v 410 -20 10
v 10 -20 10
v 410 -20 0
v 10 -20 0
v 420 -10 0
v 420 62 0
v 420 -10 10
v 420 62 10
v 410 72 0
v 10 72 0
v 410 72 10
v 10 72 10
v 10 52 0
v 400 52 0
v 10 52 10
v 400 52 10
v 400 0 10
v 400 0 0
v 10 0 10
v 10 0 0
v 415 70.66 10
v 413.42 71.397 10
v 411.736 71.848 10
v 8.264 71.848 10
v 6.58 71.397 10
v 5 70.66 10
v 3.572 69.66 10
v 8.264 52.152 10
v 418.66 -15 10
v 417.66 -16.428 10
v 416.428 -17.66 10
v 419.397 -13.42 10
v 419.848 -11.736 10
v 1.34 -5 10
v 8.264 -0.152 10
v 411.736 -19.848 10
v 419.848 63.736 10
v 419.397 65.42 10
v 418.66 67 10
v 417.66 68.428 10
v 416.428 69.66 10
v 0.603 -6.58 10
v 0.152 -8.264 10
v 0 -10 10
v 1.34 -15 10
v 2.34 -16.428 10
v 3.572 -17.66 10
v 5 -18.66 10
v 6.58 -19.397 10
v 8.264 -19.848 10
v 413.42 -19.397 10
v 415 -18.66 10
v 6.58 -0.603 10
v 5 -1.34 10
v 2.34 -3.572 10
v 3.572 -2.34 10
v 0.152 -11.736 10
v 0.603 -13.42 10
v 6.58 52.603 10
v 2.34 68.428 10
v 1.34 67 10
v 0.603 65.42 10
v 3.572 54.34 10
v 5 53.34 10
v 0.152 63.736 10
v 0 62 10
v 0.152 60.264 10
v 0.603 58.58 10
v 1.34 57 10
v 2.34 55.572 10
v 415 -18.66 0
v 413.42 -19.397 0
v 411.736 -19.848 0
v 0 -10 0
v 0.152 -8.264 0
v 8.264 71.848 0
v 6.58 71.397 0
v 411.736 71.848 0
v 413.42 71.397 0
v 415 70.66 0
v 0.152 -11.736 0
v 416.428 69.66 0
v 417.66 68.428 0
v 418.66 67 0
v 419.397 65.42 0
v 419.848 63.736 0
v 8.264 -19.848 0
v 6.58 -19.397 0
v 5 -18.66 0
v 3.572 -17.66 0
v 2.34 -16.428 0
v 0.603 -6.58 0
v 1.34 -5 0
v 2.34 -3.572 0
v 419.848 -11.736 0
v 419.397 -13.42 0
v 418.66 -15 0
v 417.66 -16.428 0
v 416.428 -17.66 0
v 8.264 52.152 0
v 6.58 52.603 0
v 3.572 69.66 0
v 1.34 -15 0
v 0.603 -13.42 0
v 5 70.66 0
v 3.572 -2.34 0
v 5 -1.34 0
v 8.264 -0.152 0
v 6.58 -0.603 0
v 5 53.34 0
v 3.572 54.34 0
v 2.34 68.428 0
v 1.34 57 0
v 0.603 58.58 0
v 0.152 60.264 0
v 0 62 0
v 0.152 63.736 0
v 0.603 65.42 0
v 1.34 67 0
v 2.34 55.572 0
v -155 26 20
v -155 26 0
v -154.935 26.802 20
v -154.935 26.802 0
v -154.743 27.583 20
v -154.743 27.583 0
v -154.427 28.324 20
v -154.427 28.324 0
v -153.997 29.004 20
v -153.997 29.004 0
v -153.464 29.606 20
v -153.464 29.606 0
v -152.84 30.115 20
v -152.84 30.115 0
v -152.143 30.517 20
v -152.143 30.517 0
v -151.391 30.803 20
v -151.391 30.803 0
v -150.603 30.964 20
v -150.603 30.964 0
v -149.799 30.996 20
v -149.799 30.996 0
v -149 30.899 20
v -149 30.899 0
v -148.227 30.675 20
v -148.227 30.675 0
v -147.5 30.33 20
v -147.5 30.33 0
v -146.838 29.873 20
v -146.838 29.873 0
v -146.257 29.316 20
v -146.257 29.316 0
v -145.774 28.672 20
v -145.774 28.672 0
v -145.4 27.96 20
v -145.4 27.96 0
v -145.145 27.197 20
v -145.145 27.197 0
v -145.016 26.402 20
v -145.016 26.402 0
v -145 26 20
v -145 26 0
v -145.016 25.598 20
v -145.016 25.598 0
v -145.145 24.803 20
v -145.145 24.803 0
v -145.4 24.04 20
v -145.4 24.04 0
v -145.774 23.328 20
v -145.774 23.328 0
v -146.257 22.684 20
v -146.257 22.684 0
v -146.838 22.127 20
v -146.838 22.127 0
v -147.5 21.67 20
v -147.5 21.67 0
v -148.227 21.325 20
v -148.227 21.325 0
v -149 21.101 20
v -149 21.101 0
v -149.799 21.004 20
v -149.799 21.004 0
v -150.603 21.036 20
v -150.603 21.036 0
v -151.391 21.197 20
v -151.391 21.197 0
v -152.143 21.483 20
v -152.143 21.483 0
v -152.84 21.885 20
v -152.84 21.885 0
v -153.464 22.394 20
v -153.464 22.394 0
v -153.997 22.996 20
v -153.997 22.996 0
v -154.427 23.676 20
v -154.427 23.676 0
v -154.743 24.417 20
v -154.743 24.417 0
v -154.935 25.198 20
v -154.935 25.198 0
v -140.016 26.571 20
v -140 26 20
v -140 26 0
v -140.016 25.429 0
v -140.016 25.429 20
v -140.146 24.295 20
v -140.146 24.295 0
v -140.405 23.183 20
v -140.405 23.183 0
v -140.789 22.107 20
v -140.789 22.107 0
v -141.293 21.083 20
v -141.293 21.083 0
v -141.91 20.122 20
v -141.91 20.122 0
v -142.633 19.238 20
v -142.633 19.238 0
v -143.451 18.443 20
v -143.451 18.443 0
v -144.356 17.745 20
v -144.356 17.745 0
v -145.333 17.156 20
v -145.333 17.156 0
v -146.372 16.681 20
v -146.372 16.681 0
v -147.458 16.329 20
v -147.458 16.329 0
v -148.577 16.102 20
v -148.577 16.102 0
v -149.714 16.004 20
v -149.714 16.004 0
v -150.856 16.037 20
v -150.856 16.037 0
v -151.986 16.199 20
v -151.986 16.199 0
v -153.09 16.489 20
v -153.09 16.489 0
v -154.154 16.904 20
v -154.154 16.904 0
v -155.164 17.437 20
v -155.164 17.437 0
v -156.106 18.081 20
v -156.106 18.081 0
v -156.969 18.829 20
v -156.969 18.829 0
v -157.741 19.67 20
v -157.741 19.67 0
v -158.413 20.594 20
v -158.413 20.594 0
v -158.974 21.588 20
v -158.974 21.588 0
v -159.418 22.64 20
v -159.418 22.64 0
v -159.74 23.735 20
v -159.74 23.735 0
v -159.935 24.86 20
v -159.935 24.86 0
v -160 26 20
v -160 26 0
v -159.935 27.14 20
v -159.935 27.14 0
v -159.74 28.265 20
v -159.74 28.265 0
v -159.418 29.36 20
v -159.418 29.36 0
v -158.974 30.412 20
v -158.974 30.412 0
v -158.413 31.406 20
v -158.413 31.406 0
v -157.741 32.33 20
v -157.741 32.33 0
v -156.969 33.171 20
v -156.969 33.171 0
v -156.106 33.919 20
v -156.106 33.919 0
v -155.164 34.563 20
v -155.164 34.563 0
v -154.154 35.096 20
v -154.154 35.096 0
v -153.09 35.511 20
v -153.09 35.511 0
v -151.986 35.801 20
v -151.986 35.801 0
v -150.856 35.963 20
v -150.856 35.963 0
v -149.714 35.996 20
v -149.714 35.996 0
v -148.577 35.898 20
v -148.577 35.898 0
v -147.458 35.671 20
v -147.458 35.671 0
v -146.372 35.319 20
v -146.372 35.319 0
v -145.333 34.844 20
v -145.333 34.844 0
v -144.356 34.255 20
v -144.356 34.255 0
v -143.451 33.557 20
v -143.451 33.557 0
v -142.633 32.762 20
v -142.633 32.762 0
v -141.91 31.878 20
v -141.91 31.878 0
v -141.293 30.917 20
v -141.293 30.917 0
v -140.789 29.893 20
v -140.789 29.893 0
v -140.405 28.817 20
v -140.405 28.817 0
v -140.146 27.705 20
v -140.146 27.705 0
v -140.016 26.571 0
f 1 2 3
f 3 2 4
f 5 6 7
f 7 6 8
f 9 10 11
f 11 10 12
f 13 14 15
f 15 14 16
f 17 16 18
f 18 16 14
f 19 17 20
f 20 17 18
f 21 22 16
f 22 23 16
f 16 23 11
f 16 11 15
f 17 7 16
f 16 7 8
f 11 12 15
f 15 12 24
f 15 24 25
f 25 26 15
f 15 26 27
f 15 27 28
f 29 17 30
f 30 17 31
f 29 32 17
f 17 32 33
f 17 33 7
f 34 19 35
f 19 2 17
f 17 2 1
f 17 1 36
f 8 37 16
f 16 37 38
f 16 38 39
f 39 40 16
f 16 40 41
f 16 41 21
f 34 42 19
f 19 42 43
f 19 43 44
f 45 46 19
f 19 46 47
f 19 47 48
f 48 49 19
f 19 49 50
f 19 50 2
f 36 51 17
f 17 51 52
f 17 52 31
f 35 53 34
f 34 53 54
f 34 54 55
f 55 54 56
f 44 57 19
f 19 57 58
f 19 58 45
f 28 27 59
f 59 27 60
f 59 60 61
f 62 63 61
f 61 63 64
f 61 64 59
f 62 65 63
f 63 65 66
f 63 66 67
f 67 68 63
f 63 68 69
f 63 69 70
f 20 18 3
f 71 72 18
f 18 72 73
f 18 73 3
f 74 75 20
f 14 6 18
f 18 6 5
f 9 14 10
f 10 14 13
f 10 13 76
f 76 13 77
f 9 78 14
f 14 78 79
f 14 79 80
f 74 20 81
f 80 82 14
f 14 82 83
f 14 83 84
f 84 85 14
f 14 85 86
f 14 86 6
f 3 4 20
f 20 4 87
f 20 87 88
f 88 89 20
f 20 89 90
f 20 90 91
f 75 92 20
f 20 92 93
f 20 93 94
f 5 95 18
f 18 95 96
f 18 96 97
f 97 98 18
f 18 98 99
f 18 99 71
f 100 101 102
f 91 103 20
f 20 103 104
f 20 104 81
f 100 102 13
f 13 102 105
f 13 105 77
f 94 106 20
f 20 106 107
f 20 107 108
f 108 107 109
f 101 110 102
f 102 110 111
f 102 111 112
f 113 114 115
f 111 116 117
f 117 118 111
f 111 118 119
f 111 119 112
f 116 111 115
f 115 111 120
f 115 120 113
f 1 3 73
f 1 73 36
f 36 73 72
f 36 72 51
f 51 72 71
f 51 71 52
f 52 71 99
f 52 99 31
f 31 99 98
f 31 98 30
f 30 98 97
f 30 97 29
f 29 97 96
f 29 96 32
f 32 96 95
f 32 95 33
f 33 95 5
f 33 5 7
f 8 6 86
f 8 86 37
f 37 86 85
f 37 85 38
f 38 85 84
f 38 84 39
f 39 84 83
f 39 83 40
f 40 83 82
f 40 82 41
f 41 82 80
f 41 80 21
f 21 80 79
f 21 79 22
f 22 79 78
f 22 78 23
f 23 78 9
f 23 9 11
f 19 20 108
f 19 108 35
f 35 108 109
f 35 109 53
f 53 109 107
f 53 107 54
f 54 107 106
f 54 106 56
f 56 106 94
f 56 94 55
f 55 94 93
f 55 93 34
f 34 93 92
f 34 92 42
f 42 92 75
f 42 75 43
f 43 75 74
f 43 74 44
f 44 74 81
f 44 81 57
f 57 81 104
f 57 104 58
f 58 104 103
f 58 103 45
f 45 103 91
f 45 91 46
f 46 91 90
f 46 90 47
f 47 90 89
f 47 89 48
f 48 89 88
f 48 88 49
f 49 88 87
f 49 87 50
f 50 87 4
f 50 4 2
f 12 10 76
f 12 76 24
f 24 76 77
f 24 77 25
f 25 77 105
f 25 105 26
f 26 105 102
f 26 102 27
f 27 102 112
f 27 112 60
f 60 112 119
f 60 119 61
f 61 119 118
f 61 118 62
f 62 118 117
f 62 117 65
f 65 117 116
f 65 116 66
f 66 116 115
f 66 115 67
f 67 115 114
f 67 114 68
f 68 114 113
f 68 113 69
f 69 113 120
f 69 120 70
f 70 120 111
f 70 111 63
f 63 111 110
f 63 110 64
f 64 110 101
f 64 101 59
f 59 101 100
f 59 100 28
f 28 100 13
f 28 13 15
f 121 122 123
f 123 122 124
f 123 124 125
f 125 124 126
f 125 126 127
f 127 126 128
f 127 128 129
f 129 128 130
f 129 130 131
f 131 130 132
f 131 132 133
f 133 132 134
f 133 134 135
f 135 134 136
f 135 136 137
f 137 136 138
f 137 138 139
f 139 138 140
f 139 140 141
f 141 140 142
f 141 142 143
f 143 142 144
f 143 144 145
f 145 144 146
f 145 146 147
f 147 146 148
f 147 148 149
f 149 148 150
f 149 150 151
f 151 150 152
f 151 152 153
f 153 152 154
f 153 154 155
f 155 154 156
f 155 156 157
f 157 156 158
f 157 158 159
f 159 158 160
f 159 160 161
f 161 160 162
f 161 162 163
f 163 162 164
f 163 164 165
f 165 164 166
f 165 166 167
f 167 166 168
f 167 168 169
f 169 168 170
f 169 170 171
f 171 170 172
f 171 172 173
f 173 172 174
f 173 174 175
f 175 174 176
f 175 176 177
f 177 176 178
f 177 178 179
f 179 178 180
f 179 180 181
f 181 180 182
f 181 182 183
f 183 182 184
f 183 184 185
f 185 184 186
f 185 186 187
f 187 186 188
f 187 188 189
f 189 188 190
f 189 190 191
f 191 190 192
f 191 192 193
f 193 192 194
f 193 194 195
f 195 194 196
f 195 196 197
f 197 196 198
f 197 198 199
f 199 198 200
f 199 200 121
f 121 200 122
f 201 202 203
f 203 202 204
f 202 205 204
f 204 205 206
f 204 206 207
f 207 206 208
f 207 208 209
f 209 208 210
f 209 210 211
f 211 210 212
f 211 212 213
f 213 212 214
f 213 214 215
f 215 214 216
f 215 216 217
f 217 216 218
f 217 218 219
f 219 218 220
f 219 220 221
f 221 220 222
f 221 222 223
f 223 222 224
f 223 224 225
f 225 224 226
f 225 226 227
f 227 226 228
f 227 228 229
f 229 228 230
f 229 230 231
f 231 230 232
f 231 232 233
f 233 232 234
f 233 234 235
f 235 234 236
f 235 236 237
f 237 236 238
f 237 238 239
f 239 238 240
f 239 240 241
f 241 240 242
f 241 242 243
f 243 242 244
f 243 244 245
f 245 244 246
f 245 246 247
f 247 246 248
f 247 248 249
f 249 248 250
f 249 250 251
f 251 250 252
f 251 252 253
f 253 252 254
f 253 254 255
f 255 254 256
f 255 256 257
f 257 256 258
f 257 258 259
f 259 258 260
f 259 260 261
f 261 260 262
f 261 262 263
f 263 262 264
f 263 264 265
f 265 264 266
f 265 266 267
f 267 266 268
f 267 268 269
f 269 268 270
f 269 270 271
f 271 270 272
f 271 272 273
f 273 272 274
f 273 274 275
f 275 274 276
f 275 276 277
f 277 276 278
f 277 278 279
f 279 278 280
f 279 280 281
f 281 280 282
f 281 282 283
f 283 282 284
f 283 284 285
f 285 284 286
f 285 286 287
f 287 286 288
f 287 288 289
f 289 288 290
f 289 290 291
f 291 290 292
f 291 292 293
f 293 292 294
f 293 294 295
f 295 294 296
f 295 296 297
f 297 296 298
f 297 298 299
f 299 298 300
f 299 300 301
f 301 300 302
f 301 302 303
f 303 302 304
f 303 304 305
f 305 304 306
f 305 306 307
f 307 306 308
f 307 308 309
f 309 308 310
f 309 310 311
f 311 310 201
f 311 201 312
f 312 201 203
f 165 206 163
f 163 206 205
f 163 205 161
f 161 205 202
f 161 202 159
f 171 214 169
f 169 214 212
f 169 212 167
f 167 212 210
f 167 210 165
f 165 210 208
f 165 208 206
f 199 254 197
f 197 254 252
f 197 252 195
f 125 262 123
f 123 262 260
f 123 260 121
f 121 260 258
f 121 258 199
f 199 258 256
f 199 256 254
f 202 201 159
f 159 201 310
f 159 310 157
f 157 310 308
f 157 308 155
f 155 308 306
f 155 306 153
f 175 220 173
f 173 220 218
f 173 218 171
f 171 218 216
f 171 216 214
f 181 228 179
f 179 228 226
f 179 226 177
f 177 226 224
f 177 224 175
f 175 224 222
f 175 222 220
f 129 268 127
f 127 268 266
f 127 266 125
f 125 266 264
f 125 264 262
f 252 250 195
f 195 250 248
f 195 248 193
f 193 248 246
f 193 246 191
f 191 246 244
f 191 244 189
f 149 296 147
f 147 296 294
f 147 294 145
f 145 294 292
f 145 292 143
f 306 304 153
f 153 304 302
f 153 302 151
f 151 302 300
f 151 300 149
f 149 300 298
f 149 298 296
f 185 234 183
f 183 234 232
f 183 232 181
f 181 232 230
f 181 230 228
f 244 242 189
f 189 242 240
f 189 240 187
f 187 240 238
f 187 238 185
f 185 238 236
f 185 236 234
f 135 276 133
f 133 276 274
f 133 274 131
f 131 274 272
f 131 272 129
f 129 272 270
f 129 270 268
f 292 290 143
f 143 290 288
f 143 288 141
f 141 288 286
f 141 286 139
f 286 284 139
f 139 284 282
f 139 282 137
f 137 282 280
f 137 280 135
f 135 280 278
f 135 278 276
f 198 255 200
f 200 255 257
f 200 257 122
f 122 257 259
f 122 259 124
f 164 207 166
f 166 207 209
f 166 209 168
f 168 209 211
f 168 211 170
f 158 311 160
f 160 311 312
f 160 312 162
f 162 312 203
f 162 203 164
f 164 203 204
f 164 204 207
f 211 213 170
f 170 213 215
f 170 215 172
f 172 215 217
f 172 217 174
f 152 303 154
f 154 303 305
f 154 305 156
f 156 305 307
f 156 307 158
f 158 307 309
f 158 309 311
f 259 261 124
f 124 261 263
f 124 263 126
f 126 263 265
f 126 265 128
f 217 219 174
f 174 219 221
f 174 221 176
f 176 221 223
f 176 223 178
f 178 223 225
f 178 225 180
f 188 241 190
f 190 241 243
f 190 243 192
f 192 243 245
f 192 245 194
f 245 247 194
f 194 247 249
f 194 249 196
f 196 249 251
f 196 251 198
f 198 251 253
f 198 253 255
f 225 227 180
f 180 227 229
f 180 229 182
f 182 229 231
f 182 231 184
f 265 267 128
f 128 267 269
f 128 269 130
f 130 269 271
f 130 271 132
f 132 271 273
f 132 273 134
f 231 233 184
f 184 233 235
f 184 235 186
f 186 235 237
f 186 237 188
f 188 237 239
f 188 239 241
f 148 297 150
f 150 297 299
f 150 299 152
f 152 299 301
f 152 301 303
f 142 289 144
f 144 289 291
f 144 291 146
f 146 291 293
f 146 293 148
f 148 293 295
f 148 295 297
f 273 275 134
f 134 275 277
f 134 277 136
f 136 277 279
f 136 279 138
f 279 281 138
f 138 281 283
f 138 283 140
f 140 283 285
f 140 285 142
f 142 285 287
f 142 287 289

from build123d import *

# Parameters (mm, degrees)
EXTRUDE_1_DEPTH = 10
SKETCH_1_3_R    = 10
SKETCH_1_3_R_2  = 5
EXTRUDE_2_DEPTH = 20
FILLET_1_R      = 10


with BuildPart() as part:
    # 草图1 → 凸台-拉伸1 (new body)
    with BuildSketch(Plane.XY):
        Polygon((0, -20), (0, 0), (400, 0), (400, 52), (0, 52), (0, 72), (420, 72), (420, -20), align=None)
    extrude(amount=EXTRUDE_1_DEPTH)

    # 圆角1
    fillet_1_edges = [part.edges().sort_by_distance(p)[0] for p in [
        (420, -20, 5),
        (420, 72, 5),
        (0, -20, 5),
        (0, 0, 5),
        (0, 52, 5),
        (0, 72, 5),
    ]]
    fillet(fillet_1_edges, radius=FILLET_1_R - 0.0001)  # a hair under: the kernel refuses the full size


with BuildPart() as body_2:
    # 草图1<3> → 凸台-拉伸2 (new body)
    with BuildSketch(Plane.XY):
        with Locations((-150, 26)):
            Circle(SKETCH_1_3_R)
        with Locations((-150, 26)):
            Circle(SKETCH_1_3_R_2, mode=Mode.SUBTRACT)
    extrude(amount=EXTRUDE_2_DEPTH)


solid = Compound([part.part, body_2.part])
